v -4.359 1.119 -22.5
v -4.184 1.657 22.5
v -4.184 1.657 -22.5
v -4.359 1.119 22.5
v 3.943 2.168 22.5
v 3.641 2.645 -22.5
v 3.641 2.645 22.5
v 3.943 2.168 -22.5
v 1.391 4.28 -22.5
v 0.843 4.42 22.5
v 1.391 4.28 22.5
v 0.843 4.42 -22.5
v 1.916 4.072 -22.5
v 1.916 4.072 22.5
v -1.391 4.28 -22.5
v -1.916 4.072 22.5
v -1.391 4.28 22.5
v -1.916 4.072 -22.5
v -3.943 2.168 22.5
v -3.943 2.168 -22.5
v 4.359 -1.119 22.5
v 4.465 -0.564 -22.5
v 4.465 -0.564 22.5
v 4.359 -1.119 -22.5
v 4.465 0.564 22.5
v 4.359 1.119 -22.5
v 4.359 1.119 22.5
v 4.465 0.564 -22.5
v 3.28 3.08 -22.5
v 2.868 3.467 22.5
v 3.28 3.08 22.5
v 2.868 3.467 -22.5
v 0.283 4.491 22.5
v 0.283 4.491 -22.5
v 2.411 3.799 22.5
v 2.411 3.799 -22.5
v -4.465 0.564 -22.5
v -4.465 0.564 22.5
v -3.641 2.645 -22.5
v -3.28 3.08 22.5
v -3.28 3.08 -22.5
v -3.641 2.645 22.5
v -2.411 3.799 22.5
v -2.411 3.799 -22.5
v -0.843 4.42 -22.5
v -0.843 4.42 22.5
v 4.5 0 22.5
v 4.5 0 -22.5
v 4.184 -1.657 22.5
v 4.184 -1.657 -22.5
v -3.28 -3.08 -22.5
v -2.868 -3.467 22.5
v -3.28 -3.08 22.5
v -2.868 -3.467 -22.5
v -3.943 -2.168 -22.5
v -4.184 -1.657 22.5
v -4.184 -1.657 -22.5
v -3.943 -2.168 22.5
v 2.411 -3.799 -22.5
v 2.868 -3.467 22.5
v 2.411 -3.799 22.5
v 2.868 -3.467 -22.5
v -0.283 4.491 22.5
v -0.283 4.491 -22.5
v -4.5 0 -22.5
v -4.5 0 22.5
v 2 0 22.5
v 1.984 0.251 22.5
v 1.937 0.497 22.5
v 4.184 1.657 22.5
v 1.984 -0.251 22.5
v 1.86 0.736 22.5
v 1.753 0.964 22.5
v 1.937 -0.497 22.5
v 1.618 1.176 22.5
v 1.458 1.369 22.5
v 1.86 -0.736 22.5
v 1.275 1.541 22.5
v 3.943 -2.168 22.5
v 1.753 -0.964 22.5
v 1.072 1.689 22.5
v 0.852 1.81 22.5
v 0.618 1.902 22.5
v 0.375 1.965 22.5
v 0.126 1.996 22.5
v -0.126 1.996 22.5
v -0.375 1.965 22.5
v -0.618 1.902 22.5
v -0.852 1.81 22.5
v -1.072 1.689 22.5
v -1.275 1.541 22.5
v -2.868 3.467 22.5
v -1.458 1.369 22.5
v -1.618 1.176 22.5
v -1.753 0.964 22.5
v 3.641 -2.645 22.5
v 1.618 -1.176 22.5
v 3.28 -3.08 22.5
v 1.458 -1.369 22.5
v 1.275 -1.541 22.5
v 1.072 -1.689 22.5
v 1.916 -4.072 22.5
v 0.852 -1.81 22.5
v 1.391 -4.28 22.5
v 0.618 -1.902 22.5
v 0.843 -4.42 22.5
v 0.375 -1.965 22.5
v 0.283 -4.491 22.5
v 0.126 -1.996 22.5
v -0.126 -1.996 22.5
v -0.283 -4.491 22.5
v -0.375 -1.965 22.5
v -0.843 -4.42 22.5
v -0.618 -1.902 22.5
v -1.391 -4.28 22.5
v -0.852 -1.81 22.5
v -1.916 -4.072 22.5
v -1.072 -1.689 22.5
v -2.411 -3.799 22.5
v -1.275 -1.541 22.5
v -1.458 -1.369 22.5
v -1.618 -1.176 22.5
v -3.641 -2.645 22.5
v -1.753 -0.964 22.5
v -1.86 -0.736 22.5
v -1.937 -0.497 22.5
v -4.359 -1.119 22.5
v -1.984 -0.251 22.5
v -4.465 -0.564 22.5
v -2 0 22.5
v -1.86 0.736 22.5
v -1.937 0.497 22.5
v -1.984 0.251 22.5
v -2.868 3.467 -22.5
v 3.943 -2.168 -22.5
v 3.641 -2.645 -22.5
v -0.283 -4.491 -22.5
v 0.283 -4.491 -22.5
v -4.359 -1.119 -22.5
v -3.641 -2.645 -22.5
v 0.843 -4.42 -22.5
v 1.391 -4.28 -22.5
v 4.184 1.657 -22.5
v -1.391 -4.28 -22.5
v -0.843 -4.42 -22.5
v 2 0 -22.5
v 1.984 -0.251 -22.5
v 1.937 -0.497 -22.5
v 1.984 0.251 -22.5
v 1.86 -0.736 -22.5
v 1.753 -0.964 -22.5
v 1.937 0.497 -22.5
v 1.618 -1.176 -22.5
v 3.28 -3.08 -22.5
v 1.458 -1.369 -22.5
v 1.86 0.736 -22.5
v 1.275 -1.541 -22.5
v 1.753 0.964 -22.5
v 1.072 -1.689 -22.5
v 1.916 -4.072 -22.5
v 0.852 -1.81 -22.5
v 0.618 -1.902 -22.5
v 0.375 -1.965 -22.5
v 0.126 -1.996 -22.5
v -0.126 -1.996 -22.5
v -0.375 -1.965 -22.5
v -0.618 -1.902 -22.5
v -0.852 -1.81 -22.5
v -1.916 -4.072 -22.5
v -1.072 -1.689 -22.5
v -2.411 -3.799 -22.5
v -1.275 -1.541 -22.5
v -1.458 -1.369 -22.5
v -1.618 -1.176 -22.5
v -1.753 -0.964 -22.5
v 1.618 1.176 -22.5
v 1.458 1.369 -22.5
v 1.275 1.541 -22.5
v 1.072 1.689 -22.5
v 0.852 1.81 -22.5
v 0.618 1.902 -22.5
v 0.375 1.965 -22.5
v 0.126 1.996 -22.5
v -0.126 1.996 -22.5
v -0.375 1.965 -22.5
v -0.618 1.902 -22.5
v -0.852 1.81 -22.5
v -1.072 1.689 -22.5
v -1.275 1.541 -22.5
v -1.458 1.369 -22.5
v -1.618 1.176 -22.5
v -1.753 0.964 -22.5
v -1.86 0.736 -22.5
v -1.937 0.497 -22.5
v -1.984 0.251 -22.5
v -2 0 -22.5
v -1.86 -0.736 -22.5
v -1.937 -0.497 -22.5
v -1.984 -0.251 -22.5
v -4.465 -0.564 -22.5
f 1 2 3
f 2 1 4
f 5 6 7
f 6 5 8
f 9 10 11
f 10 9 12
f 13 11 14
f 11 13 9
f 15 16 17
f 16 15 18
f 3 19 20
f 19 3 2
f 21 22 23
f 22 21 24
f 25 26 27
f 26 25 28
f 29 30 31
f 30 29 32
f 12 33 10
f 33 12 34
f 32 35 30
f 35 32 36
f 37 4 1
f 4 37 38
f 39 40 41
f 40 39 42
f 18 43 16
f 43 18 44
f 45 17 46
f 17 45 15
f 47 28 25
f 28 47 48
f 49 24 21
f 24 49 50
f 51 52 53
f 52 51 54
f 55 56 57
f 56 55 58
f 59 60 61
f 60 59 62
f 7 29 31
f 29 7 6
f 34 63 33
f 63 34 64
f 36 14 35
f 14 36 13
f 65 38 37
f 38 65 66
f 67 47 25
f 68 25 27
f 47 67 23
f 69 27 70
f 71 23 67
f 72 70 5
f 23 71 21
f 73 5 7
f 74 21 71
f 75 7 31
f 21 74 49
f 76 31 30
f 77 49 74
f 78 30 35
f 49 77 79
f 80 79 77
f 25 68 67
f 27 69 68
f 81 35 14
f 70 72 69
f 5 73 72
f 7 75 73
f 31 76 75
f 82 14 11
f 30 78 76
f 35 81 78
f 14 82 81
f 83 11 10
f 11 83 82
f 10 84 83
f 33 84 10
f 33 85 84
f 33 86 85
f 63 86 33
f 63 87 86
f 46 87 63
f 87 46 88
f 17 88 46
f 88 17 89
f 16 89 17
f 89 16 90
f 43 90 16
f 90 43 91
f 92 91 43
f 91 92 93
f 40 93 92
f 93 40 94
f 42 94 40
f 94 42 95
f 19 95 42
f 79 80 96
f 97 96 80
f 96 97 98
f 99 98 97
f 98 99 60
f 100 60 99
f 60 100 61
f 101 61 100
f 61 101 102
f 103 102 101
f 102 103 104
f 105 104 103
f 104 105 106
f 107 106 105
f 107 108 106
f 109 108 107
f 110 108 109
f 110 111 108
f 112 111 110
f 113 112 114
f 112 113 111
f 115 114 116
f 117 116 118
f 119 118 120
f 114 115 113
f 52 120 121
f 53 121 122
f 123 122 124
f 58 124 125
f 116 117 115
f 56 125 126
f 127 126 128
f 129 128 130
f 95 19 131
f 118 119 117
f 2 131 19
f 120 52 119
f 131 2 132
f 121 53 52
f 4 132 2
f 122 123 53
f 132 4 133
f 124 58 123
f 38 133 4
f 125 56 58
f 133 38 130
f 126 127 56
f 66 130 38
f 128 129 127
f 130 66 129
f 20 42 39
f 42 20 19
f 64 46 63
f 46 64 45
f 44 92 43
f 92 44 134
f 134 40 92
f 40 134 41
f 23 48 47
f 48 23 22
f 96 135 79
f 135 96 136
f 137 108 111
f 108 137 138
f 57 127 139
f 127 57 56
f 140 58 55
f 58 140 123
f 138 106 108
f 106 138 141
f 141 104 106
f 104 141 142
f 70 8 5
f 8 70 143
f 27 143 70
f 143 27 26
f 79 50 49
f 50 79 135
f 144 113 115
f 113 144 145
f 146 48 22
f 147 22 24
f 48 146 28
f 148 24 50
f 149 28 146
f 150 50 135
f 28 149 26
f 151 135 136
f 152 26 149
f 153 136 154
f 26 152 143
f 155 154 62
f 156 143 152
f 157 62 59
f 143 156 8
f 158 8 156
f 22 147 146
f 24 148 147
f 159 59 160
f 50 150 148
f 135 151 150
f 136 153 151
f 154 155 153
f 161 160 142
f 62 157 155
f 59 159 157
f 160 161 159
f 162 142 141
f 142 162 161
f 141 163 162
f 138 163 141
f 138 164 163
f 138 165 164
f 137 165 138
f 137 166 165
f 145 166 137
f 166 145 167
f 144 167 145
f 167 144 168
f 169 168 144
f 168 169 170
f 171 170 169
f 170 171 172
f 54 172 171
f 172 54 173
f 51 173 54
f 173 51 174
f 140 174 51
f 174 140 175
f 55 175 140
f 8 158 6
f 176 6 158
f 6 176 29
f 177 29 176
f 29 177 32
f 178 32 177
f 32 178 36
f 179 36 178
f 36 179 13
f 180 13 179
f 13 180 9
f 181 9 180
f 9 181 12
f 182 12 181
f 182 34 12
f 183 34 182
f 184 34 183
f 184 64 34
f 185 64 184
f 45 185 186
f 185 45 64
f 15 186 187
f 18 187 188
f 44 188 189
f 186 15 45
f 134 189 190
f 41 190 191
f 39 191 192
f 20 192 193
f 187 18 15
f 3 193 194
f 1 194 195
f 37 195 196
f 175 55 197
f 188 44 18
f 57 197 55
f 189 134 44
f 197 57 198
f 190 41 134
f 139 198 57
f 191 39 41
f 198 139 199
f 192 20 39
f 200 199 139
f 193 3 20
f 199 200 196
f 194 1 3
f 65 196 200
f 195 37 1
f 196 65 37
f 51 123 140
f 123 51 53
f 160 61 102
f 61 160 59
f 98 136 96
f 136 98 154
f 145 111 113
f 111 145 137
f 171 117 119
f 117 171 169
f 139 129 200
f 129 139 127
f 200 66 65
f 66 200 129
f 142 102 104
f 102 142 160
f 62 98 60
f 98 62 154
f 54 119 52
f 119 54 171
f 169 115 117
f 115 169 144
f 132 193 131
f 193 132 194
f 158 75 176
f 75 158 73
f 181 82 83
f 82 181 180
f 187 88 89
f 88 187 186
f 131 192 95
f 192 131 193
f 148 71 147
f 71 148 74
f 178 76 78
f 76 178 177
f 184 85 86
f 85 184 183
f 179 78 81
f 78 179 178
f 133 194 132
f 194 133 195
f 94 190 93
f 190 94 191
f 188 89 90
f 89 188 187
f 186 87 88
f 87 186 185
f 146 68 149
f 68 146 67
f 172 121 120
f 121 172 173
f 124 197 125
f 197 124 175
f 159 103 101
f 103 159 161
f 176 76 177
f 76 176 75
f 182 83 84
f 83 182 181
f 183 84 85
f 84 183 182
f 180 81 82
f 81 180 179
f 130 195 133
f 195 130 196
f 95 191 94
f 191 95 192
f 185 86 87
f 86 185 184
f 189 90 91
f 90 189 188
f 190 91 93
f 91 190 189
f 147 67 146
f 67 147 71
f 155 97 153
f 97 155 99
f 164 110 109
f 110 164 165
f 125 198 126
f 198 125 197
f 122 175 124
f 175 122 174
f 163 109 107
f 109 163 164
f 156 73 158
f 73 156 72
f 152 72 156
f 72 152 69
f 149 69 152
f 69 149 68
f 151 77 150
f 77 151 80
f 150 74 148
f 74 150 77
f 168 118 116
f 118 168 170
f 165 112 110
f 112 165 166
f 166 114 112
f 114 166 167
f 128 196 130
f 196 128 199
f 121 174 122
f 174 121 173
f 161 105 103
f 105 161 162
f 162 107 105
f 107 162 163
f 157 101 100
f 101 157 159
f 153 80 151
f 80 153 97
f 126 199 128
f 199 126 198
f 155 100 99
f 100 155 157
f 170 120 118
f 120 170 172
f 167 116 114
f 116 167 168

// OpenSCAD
$fn = 50;


difference() {
	union() {
		translate(v = [0, 0, -22.5000000000]) {
			cylinder(h = 45, r = 4.5000000000);
		}
	}
	union() {
		translate(v = [0, 0, -100.0000000000]) {
			cylinder(h = 200, r = 2);
		}
	}
}
